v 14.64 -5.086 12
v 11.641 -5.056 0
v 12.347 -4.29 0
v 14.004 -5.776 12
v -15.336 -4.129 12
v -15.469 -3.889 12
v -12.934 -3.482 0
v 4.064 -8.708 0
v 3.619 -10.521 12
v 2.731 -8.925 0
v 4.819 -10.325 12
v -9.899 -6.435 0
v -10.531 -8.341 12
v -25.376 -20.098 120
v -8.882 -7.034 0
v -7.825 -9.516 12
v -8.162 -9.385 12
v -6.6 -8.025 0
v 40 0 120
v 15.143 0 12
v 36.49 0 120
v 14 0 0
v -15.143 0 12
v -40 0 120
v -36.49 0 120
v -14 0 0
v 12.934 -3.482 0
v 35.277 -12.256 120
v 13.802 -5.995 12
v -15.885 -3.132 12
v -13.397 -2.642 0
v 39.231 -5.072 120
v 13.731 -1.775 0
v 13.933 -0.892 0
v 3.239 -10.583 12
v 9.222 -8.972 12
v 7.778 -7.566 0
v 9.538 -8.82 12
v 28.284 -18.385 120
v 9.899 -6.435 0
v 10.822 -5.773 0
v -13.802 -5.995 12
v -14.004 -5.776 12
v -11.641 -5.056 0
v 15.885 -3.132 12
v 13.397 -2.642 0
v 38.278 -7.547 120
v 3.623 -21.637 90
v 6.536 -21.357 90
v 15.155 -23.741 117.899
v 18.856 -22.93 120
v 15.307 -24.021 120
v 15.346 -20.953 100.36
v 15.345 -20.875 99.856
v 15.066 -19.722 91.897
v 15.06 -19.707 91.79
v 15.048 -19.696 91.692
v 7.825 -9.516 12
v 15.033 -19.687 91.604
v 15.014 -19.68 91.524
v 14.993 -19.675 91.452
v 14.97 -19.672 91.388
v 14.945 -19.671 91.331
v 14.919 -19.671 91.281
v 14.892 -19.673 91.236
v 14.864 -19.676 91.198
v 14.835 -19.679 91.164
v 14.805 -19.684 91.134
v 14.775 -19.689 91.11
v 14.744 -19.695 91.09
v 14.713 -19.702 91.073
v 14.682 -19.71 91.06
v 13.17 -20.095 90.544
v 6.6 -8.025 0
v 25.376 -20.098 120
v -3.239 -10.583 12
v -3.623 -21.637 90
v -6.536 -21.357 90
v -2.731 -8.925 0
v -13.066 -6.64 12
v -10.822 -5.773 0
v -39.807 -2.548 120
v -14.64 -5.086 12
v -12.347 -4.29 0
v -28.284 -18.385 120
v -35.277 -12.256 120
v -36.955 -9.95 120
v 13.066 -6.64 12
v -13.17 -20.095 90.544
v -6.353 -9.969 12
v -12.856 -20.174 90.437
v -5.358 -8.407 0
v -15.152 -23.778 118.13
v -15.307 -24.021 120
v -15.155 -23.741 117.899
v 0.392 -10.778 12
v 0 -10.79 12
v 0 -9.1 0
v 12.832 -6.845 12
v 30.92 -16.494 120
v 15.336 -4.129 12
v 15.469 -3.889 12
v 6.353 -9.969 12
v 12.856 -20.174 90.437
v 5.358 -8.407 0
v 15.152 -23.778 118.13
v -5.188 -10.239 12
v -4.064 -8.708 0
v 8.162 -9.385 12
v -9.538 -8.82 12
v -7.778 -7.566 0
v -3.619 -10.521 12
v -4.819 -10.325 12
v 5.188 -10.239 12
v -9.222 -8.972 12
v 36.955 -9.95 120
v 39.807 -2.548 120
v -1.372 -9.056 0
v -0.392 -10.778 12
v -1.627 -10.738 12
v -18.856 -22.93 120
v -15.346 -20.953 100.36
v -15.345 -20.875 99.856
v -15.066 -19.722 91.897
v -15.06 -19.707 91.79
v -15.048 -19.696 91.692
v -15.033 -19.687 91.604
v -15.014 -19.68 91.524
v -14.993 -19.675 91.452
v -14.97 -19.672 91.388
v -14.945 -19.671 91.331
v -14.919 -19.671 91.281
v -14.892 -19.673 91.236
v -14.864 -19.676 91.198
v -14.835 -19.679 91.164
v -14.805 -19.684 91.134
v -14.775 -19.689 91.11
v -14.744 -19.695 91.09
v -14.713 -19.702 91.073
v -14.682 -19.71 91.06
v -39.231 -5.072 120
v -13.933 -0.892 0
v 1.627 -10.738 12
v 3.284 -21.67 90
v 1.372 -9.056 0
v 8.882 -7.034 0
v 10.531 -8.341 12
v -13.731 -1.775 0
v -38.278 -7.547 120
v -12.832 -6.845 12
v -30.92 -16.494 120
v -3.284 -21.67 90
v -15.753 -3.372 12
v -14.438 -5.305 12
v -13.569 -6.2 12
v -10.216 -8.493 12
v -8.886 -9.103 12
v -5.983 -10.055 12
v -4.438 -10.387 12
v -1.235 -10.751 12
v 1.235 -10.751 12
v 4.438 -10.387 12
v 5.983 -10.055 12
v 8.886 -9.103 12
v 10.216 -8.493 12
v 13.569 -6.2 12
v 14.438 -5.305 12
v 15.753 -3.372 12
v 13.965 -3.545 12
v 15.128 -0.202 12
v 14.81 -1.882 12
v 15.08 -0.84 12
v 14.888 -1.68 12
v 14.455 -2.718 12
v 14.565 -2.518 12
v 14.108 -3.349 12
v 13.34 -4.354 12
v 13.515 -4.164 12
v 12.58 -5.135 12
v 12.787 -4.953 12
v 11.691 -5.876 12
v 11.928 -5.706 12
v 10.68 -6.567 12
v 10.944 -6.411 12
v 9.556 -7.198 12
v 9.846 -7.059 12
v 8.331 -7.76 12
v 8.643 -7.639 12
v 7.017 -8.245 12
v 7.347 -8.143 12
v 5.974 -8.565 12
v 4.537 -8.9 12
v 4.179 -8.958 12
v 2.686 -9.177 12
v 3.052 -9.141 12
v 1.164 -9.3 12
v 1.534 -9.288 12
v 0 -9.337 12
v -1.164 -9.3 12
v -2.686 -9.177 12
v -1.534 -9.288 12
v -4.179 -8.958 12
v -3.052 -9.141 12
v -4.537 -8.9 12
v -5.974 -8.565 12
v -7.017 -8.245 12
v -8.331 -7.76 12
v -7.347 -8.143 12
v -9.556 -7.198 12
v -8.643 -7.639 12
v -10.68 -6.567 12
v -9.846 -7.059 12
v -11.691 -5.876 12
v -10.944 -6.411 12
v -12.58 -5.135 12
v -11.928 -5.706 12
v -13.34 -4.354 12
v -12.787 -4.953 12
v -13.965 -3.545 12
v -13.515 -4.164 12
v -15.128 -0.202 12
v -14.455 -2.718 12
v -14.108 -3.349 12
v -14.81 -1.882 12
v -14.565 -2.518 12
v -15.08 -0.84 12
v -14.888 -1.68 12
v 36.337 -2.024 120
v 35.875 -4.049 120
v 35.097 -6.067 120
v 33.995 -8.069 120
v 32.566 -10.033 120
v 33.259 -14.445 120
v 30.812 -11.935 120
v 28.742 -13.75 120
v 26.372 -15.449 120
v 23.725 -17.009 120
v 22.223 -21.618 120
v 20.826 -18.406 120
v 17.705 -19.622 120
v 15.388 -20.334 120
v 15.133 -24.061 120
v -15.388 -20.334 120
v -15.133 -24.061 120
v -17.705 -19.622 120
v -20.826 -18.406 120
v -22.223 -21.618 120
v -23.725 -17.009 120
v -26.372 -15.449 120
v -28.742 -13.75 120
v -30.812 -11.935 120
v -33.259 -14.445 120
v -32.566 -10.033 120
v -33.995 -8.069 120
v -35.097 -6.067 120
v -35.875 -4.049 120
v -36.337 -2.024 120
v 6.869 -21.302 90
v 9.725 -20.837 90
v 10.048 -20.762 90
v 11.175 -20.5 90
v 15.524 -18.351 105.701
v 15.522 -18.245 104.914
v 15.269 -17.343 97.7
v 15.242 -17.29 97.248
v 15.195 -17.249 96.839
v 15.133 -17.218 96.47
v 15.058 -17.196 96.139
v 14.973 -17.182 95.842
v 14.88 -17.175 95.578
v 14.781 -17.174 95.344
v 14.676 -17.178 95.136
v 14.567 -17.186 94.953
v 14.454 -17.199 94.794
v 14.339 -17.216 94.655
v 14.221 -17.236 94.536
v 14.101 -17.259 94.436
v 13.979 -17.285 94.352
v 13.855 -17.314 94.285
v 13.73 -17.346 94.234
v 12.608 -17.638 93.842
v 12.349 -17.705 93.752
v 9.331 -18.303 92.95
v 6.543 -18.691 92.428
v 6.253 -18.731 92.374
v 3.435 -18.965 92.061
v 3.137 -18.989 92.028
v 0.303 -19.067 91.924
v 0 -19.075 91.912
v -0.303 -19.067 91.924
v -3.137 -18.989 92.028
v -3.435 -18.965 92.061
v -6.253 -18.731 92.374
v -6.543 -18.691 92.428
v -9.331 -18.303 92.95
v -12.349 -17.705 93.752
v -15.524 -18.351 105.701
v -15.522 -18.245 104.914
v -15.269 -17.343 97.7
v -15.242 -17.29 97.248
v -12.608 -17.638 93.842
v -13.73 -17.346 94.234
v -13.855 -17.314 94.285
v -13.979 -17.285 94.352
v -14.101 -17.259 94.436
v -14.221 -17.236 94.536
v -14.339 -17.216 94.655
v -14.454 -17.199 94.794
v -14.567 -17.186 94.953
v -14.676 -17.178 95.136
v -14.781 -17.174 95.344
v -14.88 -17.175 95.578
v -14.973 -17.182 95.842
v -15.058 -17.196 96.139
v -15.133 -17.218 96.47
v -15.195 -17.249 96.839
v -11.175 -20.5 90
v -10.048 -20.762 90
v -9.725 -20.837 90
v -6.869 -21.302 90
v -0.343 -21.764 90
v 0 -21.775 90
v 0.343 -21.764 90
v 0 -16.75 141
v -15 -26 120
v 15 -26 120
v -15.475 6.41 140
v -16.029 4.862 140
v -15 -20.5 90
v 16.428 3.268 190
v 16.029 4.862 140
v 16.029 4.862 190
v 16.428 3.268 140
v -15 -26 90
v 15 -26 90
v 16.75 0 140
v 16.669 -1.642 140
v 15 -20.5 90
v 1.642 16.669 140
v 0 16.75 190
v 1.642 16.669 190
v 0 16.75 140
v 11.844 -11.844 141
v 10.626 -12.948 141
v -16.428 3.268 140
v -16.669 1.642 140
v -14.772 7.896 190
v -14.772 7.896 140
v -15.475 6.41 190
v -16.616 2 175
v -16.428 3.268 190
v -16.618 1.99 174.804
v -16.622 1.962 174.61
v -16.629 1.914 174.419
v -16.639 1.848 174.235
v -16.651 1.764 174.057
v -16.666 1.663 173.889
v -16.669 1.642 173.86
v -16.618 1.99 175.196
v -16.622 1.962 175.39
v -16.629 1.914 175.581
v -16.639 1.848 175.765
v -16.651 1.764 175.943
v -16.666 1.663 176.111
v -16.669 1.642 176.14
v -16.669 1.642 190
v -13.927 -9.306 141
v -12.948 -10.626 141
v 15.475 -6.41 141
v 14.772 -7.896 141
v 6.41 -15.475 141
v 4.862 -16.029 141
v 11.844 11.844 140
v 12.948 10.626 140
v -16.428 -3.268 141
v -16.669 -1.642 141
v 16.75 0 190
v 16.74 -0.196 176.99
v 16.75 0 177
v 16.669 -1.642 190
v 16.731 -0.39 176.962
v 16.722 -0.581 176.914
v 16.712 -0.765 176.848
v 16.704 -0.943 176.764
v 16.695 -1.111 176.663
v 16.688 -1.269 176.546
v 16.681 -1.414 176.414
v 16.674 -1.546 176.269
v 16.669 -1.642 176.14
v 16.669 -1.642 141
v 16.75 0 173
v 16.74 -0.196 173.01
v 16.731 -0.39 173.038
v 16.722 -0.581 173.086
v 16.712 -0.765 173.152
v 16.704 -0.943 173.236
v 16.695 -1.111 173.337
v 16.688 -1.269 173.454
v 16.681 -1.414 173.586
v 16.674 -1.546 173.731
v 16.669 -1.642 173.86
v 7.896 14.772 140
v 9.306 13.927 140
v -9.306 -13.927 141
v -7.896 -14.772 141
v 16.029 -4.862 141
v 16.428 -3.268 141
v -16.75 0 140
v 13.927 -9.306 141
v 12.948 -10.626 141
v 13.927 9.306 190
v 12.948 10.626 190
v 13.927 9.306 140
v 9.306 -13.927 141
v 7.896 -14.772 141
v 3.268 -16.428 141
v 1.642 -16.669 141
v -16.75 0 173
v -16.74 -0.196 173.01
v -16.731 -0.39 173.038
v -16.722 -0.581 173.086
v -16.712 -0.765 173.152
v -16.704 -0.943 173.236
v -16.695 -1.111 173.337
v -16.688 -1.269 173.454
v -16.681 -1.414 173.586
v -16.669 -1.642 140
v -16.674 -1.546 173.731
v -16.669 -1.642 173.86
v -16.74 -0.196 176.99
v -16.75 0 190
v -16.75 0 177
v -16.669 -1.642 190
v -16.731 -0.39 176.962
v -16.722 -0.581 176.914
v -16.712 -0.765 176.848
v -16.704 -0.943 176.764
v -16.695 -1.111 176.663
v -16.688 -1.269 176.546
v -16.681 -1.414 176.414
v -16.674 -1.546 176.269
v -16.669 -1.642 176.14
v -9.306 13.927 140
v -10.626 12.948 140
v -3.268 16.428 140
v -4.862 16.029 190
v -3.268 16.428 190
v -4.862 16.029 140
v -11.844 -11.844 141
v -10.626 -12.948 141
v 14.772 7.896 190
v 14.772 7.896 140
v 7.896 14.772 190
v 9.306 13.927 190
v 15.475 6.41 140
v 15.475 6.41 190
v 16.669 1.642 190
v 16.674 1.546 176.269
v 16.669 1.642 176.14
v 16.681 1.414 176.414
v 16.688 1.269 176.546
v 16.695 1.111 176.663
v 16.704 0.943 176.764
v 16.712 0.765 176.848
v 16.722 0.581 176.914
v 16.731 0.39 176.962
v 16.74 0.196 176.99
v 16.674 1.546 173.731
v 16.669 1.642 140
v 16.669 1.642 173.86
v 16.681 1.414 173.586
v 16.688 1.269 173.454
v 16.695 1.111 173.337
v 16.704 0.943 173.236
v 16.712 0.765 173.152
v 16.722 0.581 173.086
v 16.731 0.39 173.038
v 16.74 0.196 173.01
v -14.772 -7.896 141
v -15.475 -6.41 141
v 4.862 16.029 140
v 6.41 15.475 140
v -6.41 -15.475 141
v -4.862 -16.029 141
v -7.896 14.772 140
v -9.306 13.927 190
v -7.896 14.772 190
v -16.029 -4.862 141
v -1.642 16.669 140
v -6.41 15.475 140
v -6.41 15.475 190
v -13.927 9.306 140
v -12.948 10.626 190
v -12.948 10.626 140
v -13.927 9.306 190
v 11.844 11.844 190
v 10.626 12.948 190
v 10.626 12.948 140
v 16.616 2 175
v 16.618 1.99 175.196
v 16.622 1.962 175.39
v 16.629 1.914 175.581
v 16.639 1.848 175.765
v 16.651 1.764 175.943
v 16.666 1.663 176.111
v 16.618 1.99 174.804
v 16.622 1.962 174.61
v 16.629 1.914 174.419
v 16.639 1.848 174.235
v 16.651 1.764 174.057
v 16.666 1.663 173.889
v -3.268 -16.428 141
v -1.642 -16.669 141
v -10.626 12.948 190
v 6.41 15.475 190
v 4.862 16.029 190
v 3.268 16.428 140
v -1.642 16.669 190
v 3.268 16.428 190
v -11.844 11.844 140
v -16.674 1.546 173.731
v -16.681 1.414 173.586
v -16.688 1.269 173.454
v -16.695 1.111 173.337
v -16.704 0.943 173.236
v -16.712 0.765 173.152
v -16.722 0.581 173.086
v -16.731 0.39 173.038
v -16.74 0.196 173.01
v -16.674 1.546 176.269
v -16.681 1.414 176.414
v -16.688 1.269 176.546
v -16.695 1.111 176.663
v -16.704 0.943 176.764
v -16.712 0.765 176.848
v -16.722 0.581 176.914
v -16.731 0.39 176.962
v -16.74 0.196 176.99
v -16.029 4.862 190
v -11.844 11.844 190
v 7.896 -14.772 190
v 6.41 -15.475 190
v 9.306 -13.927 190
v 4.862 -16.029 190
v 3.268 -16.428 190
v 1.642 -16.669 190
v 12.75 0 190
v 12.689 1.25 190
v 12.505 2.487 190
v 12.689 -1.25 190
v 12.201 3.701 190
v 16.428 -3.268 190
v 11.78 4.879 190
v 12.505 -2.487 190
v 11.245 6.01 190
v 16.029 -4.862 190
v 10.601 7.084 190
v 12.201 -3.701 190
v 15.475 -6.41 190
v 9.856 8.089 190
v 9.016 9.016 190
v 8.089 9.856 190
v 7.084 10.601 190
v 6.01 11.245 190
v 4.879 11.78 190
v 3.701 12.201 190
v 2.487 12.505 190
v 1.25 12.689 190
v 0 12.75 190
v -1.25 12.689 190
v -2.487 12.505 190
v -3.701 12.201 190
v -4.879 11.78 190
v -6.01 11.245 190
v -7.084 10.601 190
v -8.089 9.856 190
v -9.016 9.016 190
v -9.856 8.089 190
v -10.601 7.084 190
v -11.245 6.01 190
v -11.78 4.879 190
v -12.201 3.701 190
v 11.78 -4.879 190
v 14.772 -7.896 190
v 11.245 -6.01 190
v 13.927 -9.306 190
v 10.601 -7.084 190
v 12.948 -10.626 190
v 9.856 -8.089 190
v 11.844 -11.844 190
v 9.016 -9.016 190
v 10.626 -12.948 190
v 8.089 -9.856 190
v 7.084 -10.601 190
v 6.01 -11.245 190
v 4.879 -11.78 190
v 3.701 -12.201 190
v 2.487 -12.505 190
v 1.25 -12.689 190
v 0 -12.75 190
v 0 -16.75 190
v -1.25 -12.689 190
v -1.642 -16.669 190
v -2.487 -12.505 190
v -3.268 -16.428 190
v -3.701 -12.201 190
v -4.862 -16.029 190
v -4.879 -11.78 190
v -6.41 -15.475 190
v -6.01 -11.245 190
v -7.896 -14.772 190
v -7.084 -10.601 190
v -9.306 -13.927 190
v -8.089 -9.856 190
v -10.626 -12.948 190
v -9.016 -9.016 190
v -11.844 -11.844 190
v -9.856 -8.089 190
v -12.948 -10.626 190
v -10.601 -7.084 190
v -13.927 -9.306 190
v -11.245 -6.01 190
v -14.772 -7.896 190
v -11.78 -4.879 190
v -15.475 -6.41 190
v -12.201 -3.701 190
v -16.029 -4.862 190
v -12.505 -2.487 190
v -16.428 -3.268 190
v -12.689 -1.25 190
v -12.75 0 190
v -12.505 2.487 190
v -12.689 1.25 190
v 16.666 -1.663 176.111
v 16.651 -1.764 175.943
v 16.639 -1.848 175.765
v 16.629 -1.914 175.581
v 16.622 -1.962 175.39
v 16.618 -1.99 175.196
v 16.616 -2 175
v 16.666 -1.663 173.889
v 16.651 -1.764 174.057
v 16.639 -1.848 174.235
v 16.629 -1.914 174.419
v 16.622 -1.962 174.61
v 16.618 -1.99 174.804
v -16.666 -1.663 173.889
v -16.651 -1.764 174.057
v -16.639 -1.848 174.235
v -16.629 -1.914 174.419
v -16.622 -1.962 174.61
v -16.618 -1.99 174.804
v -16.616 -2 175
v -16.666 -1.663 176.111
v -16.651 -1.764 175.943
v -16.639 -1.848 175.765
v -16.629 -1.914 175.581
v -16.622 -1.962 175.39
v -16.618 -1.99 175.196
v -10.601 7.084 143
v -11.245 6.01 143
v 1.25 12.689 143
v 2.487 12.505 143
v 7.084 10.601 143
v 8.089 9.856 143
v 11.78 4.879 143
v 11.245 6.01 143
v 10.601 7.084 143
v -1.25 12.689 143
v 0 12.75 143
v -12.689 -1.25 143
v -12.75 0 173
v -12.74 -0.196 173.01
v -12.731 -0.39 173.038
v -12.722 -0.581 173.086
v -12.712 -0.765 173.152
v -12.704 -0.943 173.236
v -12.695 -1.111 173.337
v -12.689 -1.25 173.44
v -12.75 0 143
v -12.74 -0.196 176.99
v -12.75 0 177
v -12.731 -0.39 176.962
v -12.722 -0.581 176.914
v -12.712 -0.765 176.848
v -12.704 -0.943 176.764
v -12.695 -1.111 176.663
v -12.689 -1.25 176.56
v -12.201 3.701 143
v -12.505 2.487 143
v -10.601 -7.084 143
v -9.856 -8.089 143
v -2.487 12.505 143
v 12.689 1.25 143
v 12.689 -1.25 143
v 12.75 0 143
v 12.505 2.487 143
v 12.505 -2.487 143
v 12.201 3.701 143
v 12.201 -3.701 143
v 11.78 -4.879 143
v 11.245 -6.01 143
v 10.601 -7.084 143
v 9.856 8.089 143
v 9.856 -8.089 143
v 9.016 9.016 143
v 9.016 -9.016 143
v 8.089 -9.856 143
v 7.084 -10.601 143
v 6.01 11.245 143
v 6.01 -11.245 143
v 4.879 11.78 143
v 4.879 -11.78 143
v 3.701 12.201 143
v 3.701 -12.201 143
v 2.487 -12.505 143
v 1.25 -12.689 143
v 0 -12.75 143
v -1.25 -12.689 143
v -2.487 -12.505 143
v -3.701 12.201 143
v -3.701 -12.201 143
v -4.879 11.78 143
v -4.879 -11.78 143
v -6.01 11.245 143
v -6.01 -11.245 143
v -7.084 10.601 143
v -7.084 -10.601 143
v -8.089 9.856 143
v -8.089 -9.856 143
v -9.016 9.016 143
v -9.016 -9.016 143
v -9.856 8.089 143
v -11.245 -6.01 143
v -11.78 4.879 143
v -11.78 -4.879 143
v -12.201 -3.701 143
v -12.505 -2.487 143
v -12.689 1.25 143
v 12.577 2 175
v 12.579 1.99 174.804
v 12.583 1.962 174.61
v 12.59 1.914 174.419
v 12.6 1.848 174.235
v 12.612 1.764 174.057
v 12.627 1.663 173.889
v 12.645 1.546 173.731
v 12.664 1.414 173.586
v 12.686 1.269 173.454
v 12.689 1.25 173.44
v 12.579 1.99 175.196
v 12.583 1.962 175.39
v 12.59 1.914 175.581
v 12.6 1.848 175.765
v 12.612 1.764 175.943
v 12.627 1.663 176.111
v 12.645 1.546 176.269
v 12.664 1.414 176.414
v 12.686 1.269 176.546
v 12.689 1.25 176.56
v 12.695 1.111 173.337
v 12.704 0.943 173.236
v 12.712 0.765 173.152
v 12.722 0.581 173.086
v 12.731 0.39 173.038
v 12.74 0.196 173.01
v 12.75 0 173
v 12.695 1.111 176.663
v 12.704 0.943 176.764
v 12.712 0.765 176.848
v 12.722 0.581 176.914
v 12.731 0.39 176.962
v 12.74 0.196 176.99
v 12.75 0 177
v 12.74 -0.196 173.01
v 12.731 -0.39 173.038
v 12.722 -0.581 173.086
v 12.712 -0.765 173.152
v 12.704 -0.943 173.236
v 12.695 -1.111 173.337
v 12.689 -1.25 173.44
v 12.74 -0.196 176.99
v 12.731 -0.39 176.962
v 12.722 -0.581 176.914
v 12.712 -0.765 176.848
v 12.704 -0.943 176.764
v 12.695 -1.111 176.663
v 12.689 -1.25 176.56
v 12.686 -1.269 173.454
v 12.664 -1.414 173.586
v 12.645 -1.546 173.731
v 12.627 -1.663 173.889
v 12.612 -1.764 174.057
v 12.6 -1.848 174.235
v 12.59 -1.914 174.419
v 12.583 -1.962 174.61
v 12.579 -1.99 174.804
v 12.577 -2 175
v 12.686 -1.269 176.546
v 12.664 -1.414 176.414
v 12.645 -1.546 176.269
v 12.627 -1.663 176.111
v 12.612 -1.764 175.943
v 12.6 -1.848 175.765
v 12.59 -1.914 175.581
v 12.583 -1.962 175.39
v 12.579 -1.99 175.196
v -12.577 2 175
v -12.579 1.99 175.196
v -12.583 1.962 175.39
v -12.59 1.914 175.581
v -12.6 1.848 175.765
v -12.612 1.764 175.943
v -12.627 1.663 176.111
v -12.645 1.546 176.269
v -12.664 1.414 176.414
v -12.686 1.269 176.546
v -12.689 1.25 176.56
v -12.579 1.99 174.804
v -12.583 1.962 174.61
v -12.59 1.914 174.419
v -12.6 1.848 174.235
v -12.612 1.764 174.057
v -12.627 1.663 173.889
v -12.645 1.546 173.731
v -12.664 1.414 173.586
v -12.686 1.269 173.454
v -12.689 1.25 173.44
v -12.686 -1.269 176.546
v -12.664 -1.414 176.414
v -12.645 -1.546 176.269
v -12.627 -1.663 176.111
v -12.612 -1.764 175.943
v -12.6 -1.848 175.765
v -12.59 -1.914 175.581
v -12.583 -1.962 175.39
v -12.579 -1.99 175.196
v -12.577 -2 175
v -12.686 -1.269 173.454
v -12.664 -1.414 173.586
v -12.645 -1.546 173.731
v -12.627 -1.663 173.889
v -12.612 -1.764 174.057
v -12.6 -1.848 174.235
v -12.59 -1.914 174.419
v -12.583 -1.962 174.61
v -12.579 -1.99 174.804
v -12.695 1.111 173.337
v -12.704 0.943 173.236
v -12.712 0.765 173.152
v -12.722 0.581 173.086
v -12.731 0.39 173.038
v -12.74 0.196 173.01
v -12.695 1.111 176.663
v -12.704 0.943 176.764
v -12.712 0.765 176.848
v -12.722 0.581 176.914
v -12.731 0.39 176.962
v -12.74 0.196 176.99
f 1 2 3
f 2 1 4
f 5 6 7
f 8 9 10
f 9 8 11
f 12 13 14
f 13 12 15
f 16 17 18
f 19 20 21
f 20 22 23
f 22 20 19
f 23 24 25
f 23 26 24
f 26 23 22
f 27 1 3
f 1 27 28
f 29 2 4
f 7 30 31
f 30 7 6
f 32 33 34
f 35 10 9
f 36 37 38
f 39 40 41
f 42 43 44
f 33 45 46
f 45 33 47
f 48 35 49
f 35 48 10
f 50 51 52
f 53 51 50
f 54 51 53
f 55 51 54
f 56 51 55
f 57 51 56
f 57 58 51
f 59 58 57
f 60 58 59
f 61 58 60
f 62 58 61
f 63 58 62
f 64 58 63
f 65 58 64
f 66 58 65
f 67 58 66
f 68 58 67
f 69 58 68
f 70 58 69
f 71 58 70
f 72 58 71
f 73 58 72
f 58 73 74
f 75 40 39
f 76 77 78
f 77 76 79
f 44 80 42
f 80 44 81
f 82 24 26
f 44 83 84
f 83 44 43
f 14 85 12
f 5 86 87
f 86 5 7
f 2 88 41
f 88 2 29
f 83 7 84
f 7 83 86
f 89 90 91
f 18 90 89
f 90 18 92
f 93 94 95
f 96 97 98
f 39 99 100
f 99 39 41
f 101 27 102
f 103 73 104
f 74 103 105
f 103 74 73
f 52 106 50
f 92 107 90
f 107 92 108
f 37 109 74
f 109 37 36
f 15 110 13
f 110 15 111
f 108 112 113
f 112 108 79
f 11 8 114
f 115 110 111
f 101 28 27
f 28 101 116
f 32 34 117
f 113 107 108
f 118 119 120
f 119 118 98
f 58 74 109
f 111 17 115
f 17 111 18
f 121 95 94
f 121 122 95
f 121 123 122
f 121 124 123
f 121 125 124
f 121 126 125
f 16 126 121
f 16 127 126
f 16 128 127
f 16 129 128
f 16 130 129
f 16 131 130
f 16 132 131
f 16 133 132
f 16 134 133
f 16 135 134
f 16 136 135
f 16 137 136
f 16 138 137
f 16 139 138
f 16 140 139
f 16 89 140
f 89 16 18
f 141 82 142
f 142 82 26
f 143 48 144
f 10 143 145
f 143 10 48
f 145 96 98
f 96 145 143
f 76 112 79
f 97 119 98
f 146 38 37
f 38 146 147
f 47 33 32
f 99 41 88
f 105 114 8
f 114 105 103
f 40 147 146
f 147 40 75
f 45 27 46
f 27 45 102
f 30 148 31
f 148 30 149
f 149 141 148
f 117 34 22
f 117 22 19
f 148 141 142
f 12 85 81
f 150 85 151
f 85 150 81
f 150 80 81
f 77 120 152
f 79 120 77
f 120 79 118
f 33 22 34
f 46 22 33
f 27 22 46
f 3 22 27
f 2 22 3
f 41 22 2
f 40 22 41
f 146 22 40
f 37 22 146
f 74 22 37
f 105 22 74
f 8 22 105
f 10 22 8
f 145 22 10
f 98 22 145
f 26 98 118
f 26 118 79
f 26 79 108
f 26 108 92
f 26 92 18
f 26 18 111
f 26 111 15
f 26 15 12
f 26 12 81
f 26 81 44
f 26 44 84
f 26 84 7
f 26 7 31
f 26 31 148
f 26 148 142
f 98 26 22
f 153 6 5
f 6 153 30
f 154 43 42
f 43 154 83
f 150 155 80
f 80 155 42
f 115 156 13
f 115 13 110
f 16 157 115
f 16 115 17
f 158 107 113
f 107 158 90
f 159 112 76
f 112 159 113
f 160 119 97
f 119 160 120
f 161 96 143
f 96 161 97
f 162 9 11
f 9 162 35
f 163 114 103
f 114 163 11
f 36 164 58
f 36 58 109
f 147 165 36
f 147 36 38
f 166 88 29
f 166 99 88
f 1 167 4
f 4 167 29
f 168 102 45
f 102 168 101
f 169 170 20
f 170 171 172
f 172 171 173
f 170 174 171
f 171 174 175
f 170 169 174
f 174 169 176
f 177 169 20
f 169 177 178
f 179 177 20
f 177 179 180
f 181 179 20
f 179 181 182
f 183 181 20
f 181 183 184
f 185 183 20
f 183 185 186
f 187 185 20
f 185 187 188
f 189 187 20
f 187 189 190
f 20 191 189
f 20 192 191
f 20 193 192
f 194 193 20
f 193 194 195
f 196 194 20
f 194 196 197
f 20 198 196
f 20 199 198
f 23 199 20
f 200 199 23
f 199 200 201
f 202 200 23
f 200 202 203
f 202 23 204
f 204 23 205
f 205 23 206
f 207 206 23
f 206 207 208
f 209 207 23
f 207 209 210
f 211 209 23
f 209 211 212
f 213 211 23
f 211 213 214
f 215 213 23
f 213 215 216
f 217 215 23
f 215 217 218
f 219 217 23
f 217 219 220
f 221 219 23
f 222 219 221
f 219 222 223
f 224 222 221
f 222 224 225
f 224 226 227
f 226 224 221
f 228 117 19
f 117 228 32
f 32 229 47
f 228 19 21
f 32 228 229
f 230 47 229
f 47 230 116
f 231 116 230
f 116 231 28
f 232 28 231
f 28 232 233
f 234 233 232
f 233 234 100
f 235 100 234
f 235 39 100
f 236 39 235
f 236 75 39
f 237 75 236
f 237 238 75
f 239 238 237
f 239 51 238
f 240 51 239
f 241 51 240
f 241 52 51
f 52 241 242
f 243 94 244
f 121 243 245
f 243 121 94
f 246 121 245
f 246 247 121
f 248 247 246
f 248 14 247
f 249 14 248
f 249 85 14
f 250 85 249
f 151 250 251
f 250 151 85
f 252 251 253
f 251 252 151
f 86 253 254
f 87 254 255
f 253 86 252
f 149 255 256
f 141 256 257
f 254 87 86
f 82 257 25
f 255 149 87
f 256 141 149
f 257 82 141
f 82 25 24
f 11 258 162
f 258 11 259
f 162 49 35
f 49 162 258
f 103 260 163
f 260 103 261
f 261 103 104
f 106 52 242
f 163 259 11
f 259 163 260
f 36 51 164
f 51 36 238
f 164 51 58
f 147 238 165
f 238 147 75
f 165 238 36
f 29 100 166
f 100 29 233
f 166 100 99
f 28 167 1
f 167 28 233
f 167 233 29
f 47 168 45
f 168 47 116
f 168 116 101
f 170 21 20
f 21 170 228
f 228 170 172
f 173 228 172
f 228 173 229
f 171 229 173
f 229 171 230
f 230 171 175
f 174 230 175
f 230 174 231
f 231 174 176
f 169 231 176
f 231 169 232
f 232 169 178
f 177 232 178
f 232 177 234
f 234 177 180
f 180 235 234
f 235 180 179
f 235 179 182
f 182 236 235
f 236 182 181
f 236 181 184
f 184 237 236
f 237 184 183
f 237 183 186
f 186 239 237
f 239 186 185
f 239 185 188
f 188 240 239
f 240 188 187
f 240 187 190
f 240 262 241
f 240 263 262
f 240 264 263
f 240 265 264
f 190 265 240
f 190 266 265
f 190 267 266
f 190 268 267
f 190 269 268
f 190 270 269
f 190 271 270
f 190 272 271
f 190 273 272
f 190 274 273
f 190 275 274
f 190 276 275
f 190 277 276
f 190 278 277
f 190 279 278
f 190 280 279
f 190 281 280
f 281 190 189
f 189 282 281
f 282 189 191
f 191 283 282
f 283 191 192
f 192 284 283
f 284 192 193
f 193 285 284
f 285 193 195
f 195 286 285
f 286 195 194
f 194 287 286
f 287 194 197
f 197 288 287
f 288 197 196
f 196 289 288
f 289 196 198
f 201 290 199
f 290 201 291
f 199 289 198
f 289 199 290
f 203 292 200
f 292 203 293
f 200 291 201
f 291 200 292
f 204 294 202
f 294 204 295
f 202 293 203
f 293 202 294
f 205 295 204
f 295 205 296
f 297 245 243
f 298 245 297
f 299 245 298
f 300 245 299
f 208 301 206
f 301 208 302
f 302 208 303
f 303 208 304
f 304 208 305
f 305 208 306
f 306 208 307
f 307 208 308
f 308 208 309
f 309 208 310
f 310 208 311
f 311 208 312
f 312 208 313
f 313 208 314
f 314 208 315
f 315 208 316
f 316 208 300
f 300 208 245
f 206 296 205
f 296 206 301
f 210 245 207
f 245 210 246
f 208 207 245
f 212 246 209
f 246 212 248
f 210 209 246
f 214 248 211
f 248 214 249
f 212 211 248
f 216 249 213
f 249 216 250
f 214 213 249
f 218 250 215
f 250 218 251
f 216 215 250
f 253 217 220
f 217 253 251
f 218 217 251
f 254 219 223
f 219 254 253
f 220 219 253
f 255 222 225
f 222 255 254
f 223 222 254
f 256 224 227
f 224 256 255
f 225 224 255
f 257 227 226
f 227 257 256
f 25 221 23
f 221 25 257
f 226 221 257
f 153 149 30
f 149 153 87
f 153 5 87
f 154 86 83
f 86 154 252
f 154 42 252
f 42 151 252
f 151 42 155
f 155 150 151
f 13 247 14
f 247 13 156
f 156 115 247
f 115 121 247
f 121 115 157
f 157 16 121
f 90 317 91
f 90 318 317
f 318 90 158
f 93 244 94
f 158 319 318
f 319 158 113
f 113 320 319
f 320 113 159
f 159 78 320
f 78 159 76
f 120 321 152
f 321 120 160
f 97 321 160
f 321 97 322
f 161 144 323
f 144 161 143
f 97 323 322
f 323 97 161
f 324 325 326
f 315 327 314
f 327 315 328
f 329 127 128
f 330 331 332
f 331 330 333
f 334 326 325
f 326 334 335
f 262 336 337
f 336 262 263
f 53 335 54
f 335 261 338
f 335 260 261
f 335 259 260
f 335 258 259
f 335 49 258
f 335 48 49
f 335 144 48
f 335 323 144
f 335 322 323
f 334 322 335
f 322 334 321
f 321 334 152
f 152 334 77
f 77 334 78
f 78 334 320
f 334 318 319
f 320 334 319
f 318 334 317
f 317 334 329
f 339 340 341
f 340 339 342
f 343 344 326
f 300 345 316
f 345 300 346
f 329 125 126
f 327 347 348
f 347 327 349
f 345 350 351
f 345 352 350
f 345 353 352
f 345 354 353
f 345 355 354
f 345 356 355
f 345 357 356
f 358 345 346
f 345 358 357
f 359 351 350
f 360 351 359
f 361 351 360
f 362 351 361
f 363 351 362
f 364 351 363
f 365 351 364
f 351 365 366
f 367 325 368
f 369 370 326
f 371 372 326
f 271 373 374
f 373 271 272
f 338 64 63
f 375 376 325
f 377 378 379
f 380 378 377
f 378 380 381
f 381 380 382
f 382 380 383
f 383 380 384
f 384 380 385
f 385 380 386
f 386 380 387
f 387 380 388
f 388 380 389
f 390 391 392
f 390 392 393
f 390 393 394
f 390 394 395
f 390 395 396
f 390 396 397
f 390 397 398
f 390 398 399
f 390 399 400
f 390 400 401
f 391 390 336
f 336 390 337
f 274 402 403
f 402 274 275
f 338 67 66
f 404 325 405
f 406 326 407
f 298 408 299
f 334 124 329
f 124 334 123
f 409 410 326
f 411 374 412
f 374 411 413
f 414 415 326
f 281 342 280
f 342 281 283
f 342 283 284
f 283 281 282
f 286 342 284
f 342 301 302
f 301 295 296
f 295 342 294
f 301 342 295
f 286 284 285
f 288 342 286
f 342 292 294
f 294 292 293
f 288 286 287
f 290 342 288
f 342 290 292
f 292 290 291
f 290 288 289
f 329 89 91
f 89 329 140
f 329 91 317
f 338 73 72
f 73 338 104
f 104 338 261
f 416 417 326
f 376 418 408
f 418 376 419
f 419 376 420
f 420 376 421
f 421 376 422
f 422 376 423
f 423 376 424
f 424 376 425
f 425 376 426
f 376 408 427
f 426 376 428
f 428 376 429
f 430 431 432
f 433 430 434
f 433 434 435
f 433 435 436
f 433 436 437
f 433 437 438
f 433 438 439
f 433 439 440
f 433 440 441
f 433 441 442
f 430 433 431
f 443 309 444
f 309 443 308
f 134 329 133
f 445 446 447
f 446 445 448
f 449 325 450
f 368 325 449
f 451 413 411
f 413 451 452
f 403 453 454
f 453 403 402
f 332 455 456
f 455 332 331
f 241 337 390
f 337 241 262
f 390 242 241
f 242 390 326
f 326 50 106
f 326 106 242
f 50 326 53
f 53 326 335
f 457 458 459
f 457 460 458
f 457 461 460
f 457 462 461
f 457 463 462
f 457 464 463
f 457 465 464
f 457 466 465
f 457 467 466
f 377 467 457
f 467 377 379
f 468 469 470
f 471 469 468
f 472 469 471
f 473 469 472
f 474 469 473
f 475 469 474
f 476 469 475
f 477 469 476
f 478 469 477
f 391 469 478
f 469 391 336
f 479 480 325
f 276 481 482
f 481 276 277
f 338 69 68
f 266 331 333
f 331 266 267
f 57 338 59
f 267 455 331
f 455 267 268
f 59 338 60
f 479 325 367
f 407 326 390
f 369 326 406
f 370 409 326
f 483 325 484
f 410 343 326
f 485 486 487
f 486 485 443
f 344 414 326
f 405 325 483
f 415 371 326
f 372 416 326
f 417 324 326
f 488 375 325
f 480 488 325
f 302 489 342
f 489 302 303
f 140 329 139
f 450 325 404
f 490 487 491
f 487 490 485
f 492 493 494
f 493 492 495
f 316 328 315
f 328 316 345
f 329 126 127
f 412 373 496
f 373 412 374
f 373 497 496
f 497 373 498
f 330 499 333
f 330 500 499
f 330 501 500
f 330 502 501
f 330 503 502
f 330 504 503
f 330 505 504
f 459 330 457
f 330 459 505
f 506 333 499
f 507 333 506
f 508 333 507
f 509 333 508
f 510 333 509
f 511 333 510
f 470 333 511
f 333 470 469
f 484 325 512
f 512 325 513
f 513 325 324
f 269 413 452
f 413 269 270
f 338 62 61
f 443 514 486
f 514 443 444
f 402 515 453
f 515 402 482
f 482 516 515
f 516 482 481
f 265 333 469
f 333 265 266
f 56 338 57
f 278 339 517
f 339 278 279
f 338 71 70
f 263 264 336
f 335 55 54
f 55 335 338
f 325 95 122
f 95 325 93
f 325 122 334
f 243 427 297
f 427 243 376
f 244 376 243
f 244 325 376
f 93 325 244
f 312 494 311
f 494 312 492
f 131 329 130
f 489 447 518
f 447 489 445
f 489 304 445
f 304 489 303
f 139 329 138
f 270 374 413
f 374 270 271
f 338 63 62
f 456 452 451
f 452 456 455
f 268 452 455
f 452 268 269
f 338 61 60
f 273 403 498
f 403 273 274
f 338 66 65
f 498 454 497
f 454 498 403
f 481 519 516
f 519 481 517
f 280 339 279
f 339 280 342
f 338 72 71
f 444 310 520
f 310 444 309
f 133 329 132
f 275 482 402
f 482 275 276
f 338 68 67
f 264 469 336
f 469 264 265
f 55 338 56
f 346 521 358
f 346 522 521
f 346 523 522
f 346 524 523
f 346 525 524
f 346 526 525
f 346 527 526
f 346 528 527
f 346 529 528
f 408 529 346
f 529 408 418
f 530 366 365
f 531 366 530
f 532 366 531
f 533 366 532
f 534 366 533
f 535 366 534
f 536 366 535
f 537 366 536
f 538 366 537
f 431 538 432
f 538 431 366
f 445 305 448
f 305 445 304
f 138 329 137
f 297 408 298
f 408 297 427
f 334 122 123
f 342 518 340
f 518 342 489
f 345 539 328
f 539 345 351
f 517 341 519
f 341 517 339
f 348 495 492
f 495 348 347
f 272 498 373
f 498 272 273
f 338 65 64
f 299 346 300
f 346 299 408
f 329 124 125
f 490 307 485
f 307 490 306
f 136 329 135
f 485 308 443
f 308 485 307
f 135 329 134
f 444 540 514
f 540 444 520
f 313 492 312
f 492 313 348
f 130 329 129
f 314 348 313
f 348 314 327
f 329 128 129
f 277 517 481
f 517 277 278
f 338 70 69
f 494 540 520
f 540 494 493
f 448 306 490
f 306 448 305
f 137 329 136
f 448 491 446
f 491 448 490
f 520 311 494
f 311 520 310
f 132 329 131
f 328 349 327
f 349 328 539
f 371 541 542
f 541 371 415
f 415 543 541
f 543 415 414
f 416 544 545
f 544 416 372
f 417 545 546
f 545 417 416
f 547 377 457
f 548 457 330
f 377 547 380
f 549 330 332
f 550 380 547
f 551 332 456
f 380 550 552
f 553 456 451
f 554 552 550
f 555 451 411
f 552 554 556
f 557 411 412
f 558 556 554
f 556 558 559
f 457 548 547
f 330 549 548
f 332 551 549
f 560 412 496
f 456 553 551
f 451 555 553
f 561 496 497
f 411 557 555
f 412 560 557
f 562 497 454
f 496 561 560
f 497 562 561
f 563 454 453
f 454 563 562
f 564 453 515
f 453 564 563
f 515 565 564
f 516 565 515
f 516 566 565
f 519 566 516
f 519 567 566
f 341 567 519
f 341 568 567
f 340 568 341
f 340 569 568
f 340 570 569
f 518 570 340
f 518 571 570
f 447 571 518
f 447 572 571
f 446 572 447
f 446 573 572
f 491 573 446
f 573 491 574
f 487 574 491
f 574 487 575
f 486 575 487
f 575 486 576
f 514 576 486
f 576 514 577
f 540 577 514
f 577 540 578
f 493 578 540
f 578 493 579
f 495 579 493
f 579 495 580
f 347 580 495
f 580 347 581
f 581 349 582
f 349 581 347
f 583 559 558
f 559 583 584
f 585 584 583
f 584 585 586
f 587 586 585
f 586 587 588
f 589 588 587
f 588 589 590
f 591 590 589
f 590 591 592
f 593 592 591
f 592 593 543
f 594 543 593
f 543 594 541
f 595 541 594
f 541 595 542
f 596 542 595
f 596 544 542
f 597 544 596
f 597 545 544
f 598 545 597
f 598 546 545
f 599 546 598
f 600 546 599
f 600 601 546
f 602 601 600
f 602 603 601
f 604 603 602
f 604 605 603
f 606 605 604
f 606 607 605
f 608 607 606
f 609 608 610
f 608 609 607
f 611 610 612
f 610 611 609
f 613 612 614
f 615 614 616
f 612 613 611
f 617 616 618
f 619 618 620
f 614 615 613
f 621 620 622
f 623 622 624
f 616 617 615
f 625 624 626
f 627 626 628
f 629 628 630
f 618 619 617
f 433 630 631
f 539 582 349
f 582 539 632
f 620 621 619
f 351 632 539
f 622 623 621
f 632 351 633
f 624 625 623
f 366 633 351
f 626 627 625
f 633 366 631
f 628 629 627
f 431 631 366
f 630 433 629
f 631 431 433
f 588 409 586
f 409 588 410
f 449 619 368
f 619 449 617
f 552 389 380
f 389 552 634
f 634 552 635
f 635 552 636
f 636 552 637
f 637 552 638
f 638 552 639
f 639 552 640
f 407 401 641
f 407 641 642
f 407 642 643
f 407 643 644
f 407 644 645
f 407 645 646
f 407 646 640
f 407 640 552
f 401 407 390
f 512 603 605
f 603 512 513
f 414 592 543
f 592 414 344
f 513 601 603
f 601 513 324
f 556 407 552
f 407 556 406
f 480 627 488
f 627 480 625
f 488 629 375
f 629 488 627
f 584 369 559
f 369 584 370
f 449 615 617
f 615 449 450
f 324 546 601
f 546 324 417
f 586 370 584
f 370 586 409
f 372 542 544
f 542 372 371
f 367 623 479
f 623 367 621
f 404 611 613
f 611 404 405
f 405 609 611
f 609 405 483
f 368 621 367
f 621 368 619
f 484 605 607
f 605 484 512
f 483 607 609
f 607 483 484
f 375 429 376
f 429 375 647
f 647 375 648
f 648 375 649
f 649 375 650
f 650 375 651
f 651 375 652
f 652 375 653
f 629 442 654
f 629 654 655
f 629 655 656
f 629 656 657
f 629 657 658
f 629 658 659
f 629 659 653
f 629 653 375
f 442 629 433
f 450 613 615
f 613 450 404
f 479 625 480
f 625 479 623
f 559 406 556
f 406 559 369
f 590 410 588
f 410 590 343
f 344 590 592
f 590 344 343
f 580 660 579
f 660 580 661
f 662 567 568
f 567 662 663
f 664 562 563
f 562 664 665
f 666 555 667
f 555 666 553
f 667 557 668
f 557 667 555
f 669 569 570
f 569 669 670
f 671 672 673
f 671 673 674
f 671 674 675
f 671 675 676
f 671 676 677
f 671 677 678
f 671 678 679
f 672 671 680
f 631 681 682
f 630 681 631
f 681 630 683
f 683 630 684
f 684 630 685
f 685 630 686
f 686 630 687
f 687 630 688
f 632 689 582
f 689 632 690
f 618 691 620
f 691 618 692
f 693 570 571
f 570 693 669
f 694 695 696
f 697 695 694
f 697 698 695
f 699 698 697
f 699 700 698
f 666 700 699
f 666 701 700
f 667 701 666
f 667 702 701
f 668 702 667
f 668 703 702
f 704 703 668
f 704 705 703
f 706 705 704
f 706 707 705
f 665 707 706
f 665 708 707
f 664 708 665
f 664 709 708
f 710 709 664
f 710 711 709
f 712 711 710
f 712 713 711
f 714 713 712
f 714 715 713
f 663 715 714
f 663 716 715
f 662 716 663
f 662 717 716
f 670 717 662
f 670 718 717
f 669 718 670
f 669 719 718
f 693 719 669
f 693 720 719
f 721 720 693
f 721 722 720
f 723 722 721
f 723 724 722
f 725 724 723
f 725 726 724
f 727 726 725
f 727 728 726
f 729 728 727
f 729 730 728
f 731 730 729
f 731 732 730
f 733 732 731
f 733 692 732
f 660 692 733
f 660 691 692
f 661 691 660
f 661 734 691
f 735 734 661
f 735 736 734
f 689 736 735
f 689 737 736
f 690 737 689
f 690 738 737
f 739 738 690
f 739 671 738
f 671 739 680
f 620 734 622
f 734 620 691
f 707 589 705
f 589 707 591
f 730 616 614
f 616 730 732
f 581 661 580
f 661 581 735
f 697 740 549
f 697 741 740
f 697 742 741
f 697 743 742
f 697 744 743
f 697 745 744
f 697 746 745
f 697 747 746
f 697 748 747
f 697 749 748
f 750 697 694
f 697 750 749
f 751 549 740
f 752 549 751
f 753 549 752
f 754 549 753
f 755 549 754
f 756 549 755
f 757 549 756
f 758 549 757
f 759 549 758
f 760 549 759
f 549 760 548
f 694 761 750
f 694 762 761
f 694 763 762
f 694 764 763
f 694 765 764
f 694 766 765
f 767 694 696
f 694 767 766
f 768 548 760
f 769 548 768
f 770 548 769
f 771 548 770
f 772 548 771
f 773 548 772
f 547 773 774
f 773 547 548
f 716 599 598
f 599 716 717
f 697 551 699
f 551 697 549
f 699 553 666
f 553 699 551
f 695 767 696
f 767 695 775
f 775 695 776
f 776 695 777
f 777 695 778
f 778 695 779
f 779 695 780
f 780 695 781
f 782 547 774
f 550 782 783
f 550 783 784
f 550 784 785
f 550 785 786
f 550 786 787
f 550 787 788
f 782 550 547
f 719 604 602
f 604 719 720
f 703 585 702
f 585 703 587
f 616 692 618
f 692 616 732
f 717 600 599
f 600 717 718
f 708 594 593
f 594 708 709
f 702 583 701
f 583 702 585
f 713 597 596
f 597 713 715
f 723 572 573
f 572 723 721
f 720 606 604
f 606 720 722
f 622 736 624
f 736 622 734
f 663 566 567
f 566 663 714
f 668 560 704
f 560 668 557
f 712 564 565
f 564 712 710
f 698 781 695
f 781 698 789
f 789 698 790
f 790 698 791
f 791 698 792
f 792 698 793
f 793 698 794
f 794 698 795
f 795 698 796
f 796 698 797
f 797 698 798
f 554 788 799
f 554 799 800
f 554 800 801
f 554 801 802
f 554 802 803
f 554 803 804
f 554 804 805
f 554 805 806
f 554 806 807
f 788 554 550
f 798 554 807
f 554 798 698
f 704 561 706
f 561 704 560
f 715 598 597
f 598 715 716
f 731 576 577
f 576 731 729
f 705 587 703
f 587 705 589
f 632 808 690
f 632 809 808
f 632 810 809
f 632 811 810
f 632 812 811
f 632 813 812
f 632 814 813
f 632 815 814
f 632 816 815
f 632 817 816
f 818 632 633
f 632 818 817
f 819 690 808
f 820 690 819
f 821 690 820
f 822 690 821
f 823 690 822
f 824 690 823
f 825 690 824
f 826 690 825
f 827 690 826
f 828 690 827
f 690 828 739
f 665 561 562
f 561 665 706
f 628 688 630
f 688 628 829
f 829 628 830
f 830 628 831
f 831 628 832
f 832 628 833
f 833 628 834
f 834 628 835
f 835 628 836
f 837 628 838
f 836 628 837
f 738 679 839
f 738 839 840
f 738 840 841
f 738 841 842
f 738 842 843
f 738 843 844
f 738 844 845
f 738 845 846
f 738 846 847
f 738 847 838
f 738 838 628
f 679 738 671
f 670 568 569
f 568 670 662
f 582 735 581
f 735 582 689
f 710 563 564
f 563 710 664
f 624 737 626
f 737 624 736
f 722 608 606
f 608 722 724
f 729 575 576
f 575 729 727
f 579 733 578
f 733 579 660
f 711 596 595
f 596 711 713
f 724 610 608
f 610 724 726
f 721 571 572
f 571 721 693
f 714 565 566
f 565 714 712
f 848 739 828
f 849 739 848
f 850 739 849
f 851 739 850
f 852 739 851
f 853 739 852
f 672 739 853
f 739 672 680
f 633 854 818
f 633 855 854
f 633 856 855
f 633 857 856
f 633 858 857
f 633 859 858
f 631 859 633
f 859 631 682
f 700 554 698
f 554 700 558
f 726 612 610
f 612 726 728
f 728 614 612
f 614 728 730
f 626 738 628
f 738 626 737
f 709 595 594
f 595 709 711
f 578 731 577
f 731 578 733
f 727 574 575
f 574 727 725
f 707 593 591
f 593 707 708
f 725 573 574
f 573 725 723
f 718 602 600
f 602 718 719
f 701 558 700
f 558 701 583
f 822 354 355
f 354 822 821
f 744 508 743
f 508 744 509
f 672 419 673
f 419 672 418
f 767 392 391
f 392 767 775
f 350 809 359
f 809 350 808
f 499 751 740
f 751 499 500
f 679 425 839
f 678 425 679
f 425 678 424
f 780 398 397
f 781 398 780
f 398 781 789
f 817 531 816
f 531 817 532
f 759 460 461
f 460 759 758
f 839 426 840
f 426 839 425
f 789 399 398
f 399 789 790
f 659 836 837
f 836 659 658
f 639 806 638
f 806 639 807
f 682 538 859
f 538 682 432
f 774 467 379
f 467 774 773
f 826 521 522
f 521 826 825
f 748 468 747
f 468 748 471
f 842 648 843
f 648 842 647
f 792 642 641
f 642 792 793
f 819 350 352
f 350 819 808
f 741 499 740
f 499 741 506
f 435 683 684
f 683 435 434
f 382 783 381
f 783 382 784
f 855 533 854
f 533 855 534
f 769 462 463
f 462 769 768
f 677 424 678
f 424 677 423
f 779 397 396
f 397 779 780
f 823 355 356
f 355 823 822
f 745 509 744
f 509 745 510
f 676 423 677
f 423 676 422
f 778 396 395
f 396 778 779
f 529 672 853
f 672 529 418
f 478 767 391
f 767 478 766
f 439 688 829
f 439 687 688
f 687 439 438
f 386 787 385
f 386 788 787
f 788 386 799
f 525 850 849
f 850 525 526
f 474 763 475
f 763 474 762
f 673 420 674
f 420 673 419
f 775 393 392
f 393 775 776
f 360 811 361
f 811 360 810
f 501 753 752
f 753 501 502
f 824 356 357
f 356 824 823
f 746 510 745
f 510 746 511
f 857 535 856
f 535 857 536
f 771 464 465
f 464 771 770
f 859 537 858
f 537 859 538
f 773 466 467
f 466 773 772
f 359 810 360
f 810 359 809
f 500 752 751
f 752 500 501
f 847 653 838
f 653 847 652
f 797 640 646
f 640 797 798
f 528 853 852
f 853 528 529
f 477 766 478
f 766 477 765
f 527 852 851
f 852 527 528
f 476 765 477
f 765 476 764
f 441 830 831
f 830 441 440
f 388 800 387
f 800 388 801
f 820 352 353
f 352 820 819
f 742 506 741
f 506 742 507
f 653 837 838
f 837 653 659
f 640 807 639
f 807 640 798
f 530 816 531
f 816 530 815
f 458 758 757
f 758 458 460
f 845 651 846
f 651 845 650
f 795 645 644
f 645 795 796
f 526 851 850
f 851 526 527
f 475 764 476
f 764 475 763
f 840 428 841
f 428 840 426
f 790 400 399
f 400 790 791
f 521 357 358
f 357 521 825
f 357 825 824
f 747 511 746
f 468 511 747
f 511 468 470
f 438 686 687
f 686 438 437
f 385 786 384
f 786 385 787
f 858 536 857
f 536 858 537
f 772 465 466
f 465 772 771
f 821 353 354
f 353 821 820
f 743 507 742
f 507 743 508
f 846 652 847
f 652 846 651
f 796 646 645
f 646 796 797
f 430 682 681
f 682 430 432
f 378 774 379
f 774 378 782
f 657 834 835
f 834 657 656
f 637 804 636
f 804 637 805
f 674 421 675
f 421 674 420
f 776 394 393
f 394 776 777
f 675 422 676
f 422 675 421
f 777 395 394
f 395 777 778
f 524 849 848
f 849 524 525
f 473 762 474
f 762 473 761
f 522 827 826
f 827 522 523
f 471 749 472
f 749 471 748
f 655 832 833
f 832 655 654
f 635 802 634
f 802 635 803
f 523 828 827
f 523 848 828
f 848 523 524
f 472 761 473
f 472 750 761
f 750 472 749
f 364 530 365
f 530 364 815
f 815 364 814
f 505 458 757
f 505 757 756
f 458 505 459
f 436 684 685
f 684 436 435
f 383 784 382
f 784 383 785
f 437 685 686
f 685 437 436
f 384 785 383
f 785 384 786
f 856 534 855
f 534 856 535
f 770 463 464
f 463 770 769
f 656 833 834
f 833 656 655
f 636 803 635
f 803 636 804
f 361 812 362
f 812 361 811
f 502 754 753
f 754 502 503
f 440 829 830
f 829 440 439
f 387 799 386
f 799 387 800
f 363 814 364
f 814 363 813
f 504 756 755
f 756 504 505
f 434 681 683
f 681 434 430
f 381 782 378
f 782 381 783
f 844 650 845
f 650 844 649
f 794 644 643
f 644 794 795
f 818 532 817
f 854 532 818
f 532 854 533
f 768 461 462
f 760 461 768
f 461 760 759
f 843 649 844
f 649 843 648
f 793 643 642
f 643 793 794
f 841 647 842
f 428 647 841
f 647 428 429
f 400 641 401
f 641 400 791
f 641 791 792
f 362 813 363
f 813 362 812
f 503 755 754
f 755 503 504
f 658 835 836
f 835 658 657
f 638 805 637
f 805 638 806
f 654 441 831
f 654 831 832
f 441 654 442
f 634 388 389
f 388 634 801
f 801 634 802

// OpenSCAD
// @title Garden Trowel (socket for wooden handle)
// @category Hand Tools
// @material PETG or ABS preferred; PLA works for light soil
// @print 4 perimeters, 25% infill, no supports, 8mm brim (stands tip-down)
// @summary Scoop-shaped digging trowel. Push a 25mm stick into the socket and pin it with a screw or nail through the side hole.
// @use Cut a straight green or seasoned hardwood stick ~25mm diameter. Whittle the end until it is a tight push fit, then drive a small screw or nail through the side hole. For latrines, planting and fire pits.

blade_len = 120;   // tip to heel
blade_w   = 80;    // width at heel
depth     = 26;    // depth of scoop
wall      = 3.5;
handle_d  = 25.5;  // stick diameter + clearance
socket_len= 50;
$fn = 64;

module profile() {
  difference() {
    scale([blade_w/2, depth]) circle(1);
    offset(-wall) scale([blade_w/2, depth]) circle(1);
    translate([-blade_w, 0]) square([2*blade_w, 2*depth]);
  }
}
module scoop() {
  translate([0,0,blade_len]) mirror([0,0,1])
    linear_extrude(blade_len, scale=0.35) profile();
}
socket_od = handle_d + 2*4;
socket_z  = blade_len + 20;

difference() {
  union() {
    scoop();
    // solid reinforced tip
    intersection() {
      hull() scoop();
      translate([-50,-50,0]) cube([100,100,12]);
    }
    // heel / neck
    hull() {
      translate([-15,-depth,blade_len-30]) cube([30,wall+2,30]);
      translate([0,0,socket_z]) cylinder(d=socket_od, h=1);
    }
    translate([0,0,socket_z]) cylinder(d=socket_od, h=socket_len);
  }
  translate([0,0,socket_z+3]) cylinder(d=handle_d, h=socket_len);
  // pin hole
  translate([0,0,socket_z+socket_len-15]) rotate([0,90,0]) cylinder(d=4, h=socket_od+2, center=true);
}
